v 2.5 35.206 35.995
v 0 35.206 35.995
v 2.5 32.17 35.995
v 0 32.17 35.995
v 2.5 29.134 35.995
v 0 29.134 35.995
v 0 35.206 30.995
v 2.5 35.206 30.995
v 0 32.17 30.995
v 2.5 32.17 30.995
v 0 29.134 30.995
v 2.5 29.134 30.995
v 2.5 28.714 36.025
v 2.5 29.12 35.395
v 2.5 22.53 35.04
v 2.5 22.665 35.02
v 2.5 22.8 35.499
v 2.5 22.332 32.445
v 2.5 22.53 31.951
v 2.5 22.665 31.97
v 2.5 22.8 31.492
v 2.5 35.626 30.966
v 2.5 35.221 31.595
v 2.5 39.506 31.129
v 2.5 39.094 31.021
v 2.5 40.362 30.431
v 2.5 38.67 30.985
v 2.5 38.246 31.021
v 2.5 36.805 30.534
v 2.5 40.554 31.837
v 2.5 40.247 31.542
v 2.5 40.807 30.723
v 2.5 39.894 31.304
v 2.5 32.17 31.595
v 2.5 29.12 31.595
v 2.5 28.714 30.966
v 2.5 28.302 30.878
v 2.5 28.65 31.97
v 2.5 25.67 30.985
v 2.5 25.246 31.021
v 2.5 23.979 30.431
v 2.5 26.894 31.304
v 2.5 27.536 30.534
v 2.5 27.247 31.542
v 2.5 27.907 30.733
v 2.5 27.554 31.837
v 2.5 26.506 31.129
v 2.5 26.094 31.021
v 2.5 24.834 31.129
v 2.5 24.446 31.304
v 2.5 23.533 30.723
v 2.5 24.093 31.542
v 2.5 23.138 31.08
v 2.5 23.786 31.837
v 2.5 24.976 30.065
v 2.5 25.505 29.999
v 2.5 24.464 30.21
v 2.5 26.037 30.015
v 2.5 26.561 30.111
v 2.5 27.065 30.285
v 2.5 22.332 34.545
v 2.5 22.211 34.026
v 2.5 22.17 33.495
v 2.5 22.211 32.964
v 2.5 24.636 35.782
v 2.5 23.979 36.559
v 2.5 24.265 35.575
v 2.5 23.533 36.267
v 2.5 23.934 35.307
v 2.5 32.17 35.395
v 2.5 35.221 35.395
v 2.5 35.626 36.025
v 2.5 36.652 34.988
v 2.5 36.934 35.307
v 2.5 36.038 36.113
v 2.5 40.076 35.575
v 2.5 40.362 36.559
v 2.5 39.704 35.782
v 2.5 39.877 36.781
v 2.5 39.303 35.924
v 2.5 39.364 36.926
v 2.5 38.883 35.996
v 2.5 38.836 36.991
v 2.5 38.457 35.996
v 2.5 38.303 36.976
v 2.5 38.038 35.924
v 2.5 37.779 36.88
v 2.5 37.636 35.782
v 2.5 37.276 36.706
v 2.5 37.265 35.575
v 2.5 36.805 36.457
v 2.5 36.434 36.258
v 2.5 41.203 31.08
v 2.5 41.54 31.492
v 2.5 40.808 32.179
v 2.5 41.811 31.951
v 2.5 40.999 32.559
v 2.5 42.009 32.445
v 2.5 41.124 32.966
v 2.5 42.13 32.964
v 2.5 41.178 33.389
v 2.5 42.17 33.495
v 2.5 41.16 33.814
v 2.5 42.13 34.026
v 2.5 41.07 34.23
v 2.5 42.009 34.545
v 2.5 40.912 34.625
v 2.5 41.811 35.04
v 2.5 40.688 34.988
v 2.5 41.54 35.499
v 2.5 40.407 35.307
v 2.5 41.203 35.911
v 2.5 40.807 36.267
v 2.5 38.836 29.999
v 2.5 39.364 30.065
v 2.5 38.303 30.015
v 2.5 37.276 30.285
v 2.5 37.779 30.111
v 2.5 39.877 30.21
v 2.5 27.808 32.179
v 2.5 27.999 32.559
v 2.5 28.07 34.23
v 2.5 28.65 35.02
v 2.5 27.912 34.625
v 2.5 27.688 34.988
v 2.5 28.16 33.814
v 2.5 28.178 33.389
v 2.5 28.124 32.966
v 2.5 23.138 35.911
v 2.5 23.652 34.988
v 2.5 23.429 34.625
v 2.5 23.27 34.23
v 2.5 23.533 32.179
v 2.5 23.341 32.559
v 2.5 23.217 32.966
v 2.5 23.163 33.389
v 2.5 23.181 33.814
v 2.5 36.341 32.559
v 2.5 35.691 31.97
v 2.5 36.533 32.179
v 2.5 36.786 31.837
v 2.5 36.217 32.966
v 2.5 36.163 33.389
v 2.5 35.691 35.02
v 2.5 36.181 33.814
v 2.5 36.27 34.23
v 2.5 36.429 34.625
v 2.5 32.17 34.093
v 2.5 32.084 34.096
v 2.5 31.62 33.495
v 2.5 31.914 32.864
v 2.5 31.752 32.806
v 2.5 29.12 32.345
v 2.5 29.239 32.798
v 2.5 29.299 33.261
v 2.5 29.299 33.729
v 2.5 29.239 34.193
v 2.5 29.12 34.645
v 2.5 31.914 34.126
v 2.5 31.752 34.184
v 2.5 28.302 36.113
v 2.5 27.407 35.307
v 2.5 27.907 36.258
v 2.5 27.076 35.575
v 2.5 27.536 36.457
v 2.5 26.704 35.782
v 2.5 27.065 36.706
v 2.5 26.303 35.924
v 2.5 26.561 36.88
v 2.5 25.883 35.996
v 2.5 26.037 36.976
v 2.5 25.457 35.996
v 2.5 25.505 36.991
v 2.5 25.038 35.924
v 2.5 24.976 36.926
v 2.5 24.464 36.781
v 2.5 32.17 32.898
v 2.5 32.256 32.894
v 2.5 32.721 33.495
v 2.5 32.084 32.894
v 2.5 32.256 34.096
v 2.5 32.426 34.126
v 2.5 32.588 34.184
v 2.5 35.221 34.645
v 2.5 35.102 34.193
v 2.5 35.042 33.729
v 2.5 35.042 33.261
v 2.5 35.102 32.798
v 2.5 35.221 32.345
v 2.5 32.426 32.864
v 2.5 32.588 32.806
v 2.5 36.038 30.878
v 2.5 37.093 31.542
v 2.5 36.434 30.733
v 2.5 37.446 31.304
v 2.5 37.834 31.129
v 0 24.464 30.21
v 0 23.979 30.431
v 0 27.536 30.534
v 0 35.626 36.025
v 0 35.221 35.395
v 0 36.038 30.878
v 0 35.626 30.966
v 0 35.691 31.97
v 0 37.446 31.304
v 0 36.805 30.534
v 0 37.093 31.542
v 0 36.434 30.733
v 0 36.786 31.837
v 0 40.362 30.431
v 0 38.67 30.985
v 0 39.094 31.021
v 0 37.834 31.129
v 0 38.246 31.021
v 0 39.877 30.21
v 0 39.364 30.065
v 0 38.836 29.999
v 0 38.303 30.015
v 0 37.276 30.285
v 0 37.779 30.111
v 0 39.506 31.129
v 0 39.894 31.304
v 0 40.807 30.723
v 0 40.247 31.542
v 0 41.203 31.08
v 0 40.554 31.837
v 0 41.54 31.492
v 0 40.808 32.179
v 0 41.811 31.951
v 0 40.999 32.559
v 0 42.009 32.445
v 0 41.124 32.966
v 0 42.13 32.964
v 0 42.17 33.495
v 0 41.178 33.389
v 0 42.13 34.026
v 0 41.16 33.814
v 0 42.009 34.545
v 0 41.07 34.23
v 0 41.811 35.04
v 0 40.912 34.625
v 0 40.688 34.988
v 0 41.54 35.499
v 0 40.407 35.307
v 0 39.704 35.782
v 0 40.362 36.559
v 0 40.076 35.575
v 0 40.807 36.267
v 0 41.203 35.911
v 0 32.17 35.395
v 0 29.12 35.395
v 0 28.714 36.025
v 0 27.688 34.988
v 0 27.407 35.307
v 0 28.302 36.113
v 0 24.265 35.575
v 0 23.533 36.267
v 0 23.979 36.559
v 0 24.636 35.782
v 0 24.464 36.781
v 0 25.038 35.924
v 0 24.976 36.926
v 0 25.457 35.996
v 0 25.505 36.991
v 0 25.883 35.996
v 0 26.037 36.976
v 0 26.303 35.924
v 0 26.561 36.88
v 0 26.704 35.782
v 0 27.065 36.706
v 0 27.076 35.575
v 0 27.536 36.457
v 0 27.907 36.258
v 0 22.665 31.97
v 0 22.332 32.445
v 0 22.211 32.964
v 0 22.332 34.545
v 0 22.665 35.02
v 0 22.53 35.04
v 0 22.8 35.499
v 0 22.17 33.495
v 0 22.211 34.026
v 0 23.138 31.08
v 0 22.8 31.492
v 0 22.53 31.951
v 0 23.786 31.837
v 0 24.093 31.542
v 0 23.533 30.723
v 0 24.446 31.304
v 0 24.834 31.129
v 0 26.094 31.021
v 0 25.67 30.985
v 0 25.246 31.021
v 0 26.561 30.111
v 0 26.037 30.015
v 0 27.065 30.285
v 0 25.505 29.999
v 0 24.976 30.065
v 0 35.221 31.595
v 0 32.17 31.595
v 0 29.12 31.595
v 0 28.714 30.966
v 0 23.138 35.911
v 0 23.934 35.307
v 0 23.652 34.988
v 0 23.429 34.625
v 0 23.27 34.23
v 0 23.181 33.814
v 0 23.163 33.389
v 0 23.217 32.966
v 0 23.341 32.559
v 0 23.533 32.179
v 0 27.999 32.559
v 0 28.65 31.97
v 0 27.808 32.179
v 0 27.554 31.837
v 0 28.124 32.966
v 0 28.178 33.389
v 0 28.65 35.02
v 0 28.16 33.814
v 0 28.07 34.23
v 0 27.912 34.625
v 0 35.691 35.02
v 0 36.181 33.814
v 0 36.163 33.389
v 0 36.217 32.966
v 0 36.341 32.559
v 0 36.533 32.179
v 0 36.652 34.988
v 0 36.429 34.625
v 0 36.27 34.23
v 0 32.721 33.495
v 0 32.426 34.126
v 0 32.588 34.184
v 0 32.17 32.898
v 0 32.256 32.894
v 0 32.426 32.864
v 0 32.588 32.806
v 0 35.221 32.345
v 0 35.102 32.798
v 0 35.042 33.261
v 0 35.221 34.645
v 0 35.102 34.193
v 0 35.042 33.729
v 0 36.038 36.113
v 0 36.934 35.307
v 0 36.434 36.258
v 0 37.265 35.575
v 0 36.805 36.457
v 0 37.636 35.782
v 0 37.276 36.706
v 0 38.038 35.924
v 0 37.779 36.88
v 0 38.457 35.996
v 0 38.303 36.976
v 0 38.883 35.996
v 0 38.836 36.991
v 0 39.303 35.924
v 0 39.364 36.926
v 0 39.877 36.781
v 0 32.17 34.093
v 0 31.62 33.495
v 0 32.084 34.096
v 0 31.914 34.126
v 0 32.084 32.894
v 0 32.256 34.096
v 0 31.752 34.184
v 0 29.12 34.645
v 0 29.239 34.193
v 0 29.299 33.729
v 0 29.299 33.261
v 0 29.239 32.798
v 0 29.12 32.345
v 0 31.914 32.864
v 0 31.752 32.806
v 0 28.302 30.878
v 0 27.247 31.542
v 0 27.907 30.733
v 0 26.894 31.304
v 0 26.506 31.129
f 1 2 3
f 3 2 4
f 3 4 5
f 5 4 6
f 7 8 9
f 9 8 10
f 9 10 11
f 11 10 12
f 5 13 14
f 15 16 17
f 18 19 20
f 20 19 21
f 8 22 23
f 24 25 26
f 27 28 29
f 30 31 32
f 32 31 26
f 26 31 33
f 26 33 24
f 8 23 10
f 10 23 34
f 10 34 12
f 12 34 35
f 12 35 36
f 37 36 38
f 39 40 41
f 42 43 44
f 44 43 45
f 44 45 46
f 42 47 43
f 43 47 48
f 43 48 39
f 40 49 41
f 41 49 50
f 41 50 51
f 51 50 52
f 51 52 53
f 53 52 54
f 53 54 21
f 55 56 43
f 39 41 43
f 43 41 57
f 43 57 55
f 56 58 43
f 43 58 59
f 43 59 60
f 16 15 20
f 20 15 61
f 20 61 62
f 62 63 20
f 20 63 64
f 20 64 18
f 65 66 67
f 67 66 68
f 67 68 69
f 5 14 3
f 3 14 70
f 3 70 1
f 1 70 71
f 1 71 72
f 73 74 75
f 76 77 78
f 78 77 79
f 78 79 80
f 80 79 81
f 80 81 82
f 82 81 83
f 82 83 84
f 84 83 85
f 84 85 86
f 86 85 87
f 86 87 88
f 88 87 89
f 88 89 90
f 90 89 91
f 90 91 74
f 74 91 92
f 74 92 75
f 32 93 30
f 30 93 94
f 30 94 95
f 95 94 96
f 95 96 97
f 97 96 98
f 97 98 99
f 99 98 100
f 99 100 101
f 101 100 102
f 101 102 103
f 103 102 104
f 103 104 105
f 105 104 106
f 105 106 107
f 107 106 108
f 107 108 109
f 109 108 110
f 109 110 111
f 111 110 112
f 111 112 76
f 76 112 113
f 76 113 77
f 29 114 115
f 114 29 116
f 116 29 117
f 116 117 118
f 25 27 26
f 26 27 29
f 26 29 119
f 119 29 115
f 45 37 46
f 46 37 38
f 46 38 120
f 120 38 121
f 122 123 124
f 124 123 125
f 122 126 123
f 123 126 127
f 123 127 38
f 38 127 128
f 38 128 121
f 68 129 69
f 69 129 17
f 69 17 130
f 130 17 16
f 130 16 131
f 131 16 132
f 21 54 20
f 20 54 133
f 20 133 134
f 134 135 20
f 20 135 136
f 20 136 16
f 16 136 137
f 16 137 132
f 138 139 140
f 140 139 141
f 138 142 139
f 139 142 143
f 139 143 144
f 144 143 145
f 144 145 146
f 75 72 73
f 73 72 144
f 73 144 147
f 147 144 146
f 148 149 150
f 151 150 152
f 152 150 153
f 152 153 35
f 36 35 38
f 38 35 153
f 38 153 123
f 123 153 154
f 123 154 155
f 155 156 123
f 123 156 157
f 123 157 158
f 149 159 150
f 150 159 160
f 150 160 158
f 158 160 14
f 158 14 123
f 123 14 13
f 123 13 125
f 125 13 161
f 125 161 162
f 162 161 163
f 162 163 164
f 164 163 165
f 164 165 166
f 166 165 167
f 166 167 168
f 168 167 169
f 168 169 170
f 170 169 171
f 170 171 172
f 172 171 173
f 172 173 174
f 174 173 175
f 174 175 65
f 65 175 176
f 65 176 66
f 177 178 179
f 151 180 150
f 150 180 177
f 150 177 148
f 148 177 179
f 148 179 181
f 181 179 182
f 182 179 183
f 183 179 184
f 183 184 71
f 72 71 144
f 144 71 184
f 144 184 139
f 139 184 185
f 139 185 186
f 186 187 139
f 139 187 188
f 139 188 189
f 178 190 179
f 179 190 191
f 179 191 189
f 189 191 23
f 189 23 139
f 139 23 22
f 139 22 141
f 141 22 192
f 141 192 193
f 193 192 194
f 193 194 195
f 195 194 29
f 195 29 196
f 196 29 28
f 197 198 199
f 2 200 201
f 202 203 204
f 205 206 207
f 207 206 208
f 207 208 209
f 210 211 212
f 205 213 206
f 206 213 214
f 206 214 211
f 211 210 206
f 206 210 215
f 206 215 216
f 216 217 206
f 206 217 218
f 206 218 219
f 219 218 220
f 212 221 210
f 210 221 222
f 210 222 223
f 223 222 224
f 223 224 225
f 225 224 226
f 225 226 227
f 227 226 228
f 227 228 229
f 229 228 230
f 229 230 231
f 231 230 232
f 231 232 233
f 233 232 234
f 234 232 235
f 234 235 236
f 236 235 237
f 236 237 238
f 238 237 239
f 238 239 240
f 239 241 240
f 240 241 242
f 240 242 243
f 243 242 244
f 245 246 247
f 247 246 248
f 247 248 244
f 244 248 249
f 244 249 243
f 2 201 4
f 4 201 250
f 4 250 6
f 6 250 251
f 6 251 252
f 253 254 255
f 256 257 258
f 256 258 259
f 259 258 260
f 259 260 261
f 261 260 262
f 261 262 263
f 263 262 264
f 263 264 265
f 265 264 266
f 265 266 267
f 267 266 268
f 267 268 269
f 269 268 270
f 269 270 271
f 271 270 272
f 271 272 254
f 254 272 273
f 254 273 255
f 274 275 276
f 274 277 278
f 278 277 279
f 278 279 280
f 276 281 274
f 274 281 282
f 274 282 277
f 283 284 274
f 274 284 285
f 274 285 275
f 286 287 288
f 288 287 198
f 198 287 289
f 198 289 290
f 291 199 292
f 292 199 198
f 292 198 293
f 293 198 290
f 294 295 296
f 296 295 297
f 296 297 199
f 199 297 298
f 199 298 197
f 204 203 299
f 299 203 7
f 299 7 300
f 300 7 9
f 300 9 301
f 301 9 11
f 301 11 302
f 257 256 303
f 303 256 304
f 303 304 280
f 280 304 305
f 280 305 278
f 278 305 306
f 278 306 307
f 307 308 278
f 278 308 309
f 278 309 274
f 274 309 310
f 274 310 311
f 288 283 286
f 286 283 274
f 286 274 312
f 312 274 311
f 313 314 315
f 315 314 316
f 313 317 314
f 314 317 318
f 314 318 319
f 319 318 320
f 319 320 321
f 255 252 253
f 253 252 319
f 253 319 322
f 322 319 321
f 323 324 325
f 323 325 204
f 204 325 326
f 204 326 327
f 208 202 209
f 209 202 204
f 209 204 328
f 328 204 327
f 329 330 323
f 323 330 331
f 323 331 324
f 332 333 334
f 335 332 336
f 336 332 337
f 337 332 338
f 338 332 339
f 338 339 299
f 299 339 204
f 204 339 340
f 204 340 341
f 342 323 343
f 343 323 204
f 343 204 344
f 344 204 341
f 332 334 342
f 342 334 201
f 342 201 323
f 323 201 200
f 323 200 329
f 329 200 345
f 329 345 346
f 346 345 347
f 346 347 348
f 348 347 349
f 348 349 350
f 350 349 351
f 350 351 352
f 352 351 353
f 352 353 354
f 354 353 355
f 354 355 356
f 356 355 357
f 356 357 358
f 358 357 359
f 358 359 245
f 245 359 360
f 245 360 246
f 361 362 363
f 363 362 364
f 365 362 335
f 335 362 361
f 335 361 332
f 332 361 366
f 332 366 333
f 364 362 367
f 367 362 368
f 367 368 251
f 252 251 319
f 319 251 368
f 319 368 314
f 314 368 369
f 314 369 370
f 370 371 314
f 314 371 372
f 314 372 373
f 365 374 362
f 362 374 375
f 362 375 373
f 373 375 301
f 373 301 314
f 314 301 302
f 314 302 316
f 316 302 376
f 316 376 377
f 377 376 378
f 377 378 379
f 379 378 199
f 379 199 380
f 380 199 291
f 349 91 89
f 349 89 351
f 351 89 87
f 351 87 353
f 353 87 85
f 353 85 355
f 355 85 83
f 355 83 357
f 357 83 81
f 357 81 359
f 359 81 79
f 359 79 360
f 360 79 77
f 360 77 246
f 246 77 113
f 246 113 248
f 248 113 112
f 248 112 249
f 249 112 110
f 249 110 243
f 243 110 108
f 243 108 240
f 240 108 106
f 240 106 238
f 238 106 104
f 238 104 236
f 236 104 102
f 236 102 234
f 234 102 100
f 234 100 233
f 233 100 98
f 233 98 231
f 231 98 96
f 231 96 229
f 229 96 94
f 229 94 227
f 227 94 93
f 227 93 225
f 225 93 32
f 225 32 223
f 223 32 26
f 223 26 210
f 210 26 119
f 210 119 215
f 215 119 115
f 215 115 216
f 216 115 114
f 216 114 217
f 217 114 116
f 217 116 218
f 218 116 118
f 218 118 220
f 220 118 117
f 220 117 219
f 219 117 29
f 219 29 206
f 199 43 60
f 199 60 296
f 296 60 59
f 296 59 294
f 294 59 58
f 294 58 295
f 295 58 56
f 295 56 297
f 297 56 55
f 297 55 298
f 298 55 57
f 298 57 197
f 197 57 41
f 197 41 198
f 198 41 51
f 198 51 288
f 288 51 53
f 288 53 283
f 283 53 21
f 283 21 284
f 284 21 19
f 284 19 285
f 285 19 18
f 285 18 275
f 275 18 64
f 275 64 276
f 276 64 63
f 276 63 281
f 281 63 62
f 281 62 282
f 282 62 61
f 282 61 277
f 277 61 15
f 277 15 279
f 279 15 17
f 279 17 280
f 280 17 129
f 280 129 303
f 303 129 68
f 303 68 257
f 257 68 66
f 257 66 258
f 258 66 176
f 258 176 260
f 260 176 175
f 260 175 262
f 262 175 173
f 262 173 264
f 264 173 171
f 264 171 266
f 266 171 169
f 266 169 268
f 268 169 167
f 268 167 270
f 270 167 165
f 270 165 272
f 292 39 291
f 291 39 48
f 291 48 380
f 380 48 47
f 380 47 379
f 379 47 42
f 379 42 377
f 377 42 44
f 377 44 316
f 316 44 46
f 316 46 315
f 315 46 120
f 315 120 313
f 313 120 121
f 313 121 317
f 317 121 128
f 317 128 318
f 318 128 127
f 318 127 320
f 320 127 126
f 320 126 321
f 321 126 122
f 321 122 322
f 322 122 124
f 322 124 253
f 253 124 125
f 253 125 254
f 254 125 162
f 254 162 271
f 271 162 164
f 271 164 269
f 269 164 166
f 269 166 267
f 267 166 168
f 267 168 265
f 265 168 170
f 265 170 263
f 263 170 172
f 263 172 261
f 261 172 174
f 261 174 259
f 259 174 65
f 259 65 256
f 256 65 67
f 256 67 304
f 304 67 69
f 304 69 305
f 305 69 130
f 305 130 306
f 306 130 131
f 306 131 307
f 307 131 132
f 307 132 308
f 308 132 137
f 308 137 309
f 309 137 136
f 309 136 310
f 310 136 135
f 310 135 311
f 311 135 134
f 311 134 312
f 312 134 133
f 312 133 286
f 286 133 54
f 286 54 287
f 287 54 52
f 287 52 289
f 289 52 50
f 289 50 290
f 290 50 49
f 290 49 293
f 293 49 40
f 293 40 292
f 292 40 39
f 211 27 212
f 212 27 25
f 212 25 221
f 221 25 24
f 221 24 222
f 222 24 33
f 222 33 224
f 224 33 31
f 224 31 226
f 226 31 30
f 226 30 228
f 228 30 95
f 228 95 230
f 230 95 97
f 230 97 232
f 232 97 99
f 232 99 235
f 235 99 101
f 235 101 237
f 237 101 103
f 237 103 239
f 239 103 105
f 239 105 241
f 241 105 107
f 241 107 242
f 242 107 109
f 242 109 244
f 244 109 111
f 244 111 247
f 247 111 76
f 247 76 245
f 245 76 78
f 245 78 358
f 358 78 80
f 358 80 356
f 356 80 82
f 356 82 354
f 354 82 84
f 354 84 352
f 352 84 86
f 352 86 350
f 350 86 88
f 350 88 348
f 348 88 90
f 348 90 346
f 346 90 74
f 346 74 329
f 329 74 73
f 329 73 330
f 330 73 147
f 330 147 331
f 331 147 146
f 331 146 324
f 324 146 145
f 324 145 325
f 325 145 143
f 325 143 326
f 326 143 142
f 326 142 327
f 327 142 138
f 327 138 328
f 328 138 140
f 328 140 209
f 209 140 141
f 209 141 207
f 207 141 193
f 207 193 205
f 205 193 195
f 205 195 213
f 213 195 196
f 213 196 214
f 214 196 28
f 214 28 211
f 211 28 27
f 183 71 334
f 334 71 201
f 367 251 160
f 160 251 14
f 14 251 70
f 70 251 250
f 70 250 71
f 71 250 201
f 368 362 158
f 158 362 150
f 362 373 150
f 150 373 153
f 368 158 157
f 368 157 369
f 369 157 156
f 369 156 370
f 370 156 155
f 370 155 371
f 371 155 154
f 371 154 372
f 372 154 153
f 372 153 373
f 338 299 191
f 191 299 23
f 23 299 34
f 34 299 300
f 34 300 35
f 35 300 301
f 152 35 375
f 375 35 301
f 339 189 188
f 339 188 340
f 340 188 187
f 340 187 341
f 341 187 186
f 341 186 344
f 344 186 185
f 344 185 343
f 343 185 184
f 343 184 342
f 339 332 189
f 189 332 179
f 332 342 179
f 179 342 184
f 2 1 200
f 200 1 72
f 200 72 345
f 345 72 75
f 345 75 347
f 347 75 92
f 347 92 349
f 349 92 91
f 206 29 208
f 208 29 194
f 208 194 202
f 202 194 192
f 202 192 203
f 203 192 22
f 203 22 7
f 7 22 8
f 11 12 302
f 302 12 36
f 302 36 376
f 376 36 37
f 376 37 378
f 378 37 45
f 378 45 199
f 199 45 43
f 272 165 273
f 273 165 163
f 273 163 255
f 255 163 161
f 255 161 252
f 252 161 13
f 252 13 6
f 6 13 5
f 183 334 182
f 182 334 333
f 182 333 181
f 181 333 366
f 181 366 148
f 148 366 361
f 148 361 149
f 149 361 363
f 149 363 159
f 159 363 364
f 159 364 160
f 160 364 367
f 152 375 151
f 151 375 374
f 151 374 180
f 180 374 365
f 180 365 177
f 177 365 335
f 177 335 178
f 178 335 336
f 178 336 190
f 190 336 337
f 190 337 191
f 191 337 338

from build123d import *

# Parameters (mm, degrees)
BOSS_EXTRUDE3_DEPTH = 2.5
SKETCH4_R           = 3.5
BOSS_EXTRUDE4_DEPTH = 2.5
SKETCH5_R           = 2.51
CUT_EXTRUDE1_DEPTH  = 2.5
CUT_EXTRUDE2_DEPTH  = 2.5
FILLET2_R           = 3
FILLET3_R           = 1


with BuildPart() as part:
    # Sketch3 → Boss-Extrude3 (new body)
    with BuildSketch(Plane(origin=(0, 0, 0), x_dir=(0, 0, -1), z_dir=(1, 0, 0))):
        with BuildLine():
            Line((-35.995221199, 38.670285512), (-35.995221199, 25.670285512))
            ThreePointArc((-35.995221199, 25.670285512), (-33.495221199, 23.170285512), (-30.995221199, 25.670285512))
            Line((-30.995221199, 25.670285512), (-30.995221199, 38.670285512))
            ThreePointArc((-30.995221199, 38.670285512), (-33.495221199, 41.170285512), (-35.995221199, 38.670285512))
        make_face()
    extrude(amount=BOSS_EXTRUDE3_DEPTH)

    # Sketch4 → Boss-Extrude4 (add)
    with BuildSketch(Plane(origin=(2.5, 0, 0), x_dir=(0, 0, -1), z_dir=(1, 0, 0))):
        with Locations((-33.495221199, 38.670285512)):
            Circle(SKETCH4_R)
        with Locations((-33.495221199, 25.670285512)):
            Circle(SKETCH4_R)
    extrude(amount=-BOSS_EXTRUDE4_DEPTH)

    # Sketch5 → Cut-Extrude1 (cut)
    with BuildSketch(Plane(origin=(2.5, 0, 0), x_dir=(0, 0, -1), z_dir=(1, 0, 0))):
        with Locations((-33.495221199, 38.670285512)):
            Circle(SKETCH5_R)
        with Locations((-33.495221199, 25.670285512)):
            Circle(SKETCH5_R)
    extrude(amount=-CUT_EXTRUDE1_DEPTH, mode=Mode.SUBTRACT)

    # Sketch8 → Cut-Extrude2 (cut)
    with BuildSketch(Plane(origin=(2.5, 0, 0), x_dir=(0, 0, -1), z_dir=(1, 0, 0))):
        Polygon((-35.395221199, 35.220795769), (-35.395221199, 29.119775254), (-33.991986481, 32.170285512), align=None)
        Polygon((-31.595221199, 35.220795769), (-31.595221199, 29.119775254), (-32.998455917, 32.170285512), align=None)
        with BuildLine():
            Line((-34.645221199, 35.220795769), (-33.495221199, 32.720795769))
            Line((-33.495221199, 32.720795769), (-32.345221199, 35.220795769))
            ThreePointArc((-32.345221199, 35.220795769), (-33.495221199, 35.034150271), (-34.645221199, 35.220795769))
        make_face()
        with BuildLine():
            Line((-33.495221199, 31.619775254), (-32.345221199, 29.119775254))
            ThreePointArc((-32.345221199, 29.119775254), (-33.495221199, 29.306420752), (-34.645221199, 29.119775254))
            Line((-34.645221199, 29.119775254), (-33.495221199, 31.619775254))
        make_face()
    extrude(amount=-CUT_EXTRUDE2_DEPTH, mode=Mode.SUBTRACT)

    # Fillet2
    fillet2_edges = [part.edges().sort_by_distance(p)[0] for p in [
        (1.25, 36.220795769, 35.995221199),
        (1.25, 36.220795769, 30.995221199),
        (1.25, 28.119775254, 35.995221199),
        (1.25, 28.119775254, 30.995221199),
    ]]
    fillet(fillet2_edges, radius=FILLET2_R)

    # Fillet3
    fillet3_edges = [part.edges().sort_by_distance(p)[0] for p in [
        (1.25, 32.170285512, 32.998455917),
        (1.25, 32.170285512, 33.991986481),
    ]]
    fillet(fillet3_edges, radius=FILLET3_R)


solid = part.part
